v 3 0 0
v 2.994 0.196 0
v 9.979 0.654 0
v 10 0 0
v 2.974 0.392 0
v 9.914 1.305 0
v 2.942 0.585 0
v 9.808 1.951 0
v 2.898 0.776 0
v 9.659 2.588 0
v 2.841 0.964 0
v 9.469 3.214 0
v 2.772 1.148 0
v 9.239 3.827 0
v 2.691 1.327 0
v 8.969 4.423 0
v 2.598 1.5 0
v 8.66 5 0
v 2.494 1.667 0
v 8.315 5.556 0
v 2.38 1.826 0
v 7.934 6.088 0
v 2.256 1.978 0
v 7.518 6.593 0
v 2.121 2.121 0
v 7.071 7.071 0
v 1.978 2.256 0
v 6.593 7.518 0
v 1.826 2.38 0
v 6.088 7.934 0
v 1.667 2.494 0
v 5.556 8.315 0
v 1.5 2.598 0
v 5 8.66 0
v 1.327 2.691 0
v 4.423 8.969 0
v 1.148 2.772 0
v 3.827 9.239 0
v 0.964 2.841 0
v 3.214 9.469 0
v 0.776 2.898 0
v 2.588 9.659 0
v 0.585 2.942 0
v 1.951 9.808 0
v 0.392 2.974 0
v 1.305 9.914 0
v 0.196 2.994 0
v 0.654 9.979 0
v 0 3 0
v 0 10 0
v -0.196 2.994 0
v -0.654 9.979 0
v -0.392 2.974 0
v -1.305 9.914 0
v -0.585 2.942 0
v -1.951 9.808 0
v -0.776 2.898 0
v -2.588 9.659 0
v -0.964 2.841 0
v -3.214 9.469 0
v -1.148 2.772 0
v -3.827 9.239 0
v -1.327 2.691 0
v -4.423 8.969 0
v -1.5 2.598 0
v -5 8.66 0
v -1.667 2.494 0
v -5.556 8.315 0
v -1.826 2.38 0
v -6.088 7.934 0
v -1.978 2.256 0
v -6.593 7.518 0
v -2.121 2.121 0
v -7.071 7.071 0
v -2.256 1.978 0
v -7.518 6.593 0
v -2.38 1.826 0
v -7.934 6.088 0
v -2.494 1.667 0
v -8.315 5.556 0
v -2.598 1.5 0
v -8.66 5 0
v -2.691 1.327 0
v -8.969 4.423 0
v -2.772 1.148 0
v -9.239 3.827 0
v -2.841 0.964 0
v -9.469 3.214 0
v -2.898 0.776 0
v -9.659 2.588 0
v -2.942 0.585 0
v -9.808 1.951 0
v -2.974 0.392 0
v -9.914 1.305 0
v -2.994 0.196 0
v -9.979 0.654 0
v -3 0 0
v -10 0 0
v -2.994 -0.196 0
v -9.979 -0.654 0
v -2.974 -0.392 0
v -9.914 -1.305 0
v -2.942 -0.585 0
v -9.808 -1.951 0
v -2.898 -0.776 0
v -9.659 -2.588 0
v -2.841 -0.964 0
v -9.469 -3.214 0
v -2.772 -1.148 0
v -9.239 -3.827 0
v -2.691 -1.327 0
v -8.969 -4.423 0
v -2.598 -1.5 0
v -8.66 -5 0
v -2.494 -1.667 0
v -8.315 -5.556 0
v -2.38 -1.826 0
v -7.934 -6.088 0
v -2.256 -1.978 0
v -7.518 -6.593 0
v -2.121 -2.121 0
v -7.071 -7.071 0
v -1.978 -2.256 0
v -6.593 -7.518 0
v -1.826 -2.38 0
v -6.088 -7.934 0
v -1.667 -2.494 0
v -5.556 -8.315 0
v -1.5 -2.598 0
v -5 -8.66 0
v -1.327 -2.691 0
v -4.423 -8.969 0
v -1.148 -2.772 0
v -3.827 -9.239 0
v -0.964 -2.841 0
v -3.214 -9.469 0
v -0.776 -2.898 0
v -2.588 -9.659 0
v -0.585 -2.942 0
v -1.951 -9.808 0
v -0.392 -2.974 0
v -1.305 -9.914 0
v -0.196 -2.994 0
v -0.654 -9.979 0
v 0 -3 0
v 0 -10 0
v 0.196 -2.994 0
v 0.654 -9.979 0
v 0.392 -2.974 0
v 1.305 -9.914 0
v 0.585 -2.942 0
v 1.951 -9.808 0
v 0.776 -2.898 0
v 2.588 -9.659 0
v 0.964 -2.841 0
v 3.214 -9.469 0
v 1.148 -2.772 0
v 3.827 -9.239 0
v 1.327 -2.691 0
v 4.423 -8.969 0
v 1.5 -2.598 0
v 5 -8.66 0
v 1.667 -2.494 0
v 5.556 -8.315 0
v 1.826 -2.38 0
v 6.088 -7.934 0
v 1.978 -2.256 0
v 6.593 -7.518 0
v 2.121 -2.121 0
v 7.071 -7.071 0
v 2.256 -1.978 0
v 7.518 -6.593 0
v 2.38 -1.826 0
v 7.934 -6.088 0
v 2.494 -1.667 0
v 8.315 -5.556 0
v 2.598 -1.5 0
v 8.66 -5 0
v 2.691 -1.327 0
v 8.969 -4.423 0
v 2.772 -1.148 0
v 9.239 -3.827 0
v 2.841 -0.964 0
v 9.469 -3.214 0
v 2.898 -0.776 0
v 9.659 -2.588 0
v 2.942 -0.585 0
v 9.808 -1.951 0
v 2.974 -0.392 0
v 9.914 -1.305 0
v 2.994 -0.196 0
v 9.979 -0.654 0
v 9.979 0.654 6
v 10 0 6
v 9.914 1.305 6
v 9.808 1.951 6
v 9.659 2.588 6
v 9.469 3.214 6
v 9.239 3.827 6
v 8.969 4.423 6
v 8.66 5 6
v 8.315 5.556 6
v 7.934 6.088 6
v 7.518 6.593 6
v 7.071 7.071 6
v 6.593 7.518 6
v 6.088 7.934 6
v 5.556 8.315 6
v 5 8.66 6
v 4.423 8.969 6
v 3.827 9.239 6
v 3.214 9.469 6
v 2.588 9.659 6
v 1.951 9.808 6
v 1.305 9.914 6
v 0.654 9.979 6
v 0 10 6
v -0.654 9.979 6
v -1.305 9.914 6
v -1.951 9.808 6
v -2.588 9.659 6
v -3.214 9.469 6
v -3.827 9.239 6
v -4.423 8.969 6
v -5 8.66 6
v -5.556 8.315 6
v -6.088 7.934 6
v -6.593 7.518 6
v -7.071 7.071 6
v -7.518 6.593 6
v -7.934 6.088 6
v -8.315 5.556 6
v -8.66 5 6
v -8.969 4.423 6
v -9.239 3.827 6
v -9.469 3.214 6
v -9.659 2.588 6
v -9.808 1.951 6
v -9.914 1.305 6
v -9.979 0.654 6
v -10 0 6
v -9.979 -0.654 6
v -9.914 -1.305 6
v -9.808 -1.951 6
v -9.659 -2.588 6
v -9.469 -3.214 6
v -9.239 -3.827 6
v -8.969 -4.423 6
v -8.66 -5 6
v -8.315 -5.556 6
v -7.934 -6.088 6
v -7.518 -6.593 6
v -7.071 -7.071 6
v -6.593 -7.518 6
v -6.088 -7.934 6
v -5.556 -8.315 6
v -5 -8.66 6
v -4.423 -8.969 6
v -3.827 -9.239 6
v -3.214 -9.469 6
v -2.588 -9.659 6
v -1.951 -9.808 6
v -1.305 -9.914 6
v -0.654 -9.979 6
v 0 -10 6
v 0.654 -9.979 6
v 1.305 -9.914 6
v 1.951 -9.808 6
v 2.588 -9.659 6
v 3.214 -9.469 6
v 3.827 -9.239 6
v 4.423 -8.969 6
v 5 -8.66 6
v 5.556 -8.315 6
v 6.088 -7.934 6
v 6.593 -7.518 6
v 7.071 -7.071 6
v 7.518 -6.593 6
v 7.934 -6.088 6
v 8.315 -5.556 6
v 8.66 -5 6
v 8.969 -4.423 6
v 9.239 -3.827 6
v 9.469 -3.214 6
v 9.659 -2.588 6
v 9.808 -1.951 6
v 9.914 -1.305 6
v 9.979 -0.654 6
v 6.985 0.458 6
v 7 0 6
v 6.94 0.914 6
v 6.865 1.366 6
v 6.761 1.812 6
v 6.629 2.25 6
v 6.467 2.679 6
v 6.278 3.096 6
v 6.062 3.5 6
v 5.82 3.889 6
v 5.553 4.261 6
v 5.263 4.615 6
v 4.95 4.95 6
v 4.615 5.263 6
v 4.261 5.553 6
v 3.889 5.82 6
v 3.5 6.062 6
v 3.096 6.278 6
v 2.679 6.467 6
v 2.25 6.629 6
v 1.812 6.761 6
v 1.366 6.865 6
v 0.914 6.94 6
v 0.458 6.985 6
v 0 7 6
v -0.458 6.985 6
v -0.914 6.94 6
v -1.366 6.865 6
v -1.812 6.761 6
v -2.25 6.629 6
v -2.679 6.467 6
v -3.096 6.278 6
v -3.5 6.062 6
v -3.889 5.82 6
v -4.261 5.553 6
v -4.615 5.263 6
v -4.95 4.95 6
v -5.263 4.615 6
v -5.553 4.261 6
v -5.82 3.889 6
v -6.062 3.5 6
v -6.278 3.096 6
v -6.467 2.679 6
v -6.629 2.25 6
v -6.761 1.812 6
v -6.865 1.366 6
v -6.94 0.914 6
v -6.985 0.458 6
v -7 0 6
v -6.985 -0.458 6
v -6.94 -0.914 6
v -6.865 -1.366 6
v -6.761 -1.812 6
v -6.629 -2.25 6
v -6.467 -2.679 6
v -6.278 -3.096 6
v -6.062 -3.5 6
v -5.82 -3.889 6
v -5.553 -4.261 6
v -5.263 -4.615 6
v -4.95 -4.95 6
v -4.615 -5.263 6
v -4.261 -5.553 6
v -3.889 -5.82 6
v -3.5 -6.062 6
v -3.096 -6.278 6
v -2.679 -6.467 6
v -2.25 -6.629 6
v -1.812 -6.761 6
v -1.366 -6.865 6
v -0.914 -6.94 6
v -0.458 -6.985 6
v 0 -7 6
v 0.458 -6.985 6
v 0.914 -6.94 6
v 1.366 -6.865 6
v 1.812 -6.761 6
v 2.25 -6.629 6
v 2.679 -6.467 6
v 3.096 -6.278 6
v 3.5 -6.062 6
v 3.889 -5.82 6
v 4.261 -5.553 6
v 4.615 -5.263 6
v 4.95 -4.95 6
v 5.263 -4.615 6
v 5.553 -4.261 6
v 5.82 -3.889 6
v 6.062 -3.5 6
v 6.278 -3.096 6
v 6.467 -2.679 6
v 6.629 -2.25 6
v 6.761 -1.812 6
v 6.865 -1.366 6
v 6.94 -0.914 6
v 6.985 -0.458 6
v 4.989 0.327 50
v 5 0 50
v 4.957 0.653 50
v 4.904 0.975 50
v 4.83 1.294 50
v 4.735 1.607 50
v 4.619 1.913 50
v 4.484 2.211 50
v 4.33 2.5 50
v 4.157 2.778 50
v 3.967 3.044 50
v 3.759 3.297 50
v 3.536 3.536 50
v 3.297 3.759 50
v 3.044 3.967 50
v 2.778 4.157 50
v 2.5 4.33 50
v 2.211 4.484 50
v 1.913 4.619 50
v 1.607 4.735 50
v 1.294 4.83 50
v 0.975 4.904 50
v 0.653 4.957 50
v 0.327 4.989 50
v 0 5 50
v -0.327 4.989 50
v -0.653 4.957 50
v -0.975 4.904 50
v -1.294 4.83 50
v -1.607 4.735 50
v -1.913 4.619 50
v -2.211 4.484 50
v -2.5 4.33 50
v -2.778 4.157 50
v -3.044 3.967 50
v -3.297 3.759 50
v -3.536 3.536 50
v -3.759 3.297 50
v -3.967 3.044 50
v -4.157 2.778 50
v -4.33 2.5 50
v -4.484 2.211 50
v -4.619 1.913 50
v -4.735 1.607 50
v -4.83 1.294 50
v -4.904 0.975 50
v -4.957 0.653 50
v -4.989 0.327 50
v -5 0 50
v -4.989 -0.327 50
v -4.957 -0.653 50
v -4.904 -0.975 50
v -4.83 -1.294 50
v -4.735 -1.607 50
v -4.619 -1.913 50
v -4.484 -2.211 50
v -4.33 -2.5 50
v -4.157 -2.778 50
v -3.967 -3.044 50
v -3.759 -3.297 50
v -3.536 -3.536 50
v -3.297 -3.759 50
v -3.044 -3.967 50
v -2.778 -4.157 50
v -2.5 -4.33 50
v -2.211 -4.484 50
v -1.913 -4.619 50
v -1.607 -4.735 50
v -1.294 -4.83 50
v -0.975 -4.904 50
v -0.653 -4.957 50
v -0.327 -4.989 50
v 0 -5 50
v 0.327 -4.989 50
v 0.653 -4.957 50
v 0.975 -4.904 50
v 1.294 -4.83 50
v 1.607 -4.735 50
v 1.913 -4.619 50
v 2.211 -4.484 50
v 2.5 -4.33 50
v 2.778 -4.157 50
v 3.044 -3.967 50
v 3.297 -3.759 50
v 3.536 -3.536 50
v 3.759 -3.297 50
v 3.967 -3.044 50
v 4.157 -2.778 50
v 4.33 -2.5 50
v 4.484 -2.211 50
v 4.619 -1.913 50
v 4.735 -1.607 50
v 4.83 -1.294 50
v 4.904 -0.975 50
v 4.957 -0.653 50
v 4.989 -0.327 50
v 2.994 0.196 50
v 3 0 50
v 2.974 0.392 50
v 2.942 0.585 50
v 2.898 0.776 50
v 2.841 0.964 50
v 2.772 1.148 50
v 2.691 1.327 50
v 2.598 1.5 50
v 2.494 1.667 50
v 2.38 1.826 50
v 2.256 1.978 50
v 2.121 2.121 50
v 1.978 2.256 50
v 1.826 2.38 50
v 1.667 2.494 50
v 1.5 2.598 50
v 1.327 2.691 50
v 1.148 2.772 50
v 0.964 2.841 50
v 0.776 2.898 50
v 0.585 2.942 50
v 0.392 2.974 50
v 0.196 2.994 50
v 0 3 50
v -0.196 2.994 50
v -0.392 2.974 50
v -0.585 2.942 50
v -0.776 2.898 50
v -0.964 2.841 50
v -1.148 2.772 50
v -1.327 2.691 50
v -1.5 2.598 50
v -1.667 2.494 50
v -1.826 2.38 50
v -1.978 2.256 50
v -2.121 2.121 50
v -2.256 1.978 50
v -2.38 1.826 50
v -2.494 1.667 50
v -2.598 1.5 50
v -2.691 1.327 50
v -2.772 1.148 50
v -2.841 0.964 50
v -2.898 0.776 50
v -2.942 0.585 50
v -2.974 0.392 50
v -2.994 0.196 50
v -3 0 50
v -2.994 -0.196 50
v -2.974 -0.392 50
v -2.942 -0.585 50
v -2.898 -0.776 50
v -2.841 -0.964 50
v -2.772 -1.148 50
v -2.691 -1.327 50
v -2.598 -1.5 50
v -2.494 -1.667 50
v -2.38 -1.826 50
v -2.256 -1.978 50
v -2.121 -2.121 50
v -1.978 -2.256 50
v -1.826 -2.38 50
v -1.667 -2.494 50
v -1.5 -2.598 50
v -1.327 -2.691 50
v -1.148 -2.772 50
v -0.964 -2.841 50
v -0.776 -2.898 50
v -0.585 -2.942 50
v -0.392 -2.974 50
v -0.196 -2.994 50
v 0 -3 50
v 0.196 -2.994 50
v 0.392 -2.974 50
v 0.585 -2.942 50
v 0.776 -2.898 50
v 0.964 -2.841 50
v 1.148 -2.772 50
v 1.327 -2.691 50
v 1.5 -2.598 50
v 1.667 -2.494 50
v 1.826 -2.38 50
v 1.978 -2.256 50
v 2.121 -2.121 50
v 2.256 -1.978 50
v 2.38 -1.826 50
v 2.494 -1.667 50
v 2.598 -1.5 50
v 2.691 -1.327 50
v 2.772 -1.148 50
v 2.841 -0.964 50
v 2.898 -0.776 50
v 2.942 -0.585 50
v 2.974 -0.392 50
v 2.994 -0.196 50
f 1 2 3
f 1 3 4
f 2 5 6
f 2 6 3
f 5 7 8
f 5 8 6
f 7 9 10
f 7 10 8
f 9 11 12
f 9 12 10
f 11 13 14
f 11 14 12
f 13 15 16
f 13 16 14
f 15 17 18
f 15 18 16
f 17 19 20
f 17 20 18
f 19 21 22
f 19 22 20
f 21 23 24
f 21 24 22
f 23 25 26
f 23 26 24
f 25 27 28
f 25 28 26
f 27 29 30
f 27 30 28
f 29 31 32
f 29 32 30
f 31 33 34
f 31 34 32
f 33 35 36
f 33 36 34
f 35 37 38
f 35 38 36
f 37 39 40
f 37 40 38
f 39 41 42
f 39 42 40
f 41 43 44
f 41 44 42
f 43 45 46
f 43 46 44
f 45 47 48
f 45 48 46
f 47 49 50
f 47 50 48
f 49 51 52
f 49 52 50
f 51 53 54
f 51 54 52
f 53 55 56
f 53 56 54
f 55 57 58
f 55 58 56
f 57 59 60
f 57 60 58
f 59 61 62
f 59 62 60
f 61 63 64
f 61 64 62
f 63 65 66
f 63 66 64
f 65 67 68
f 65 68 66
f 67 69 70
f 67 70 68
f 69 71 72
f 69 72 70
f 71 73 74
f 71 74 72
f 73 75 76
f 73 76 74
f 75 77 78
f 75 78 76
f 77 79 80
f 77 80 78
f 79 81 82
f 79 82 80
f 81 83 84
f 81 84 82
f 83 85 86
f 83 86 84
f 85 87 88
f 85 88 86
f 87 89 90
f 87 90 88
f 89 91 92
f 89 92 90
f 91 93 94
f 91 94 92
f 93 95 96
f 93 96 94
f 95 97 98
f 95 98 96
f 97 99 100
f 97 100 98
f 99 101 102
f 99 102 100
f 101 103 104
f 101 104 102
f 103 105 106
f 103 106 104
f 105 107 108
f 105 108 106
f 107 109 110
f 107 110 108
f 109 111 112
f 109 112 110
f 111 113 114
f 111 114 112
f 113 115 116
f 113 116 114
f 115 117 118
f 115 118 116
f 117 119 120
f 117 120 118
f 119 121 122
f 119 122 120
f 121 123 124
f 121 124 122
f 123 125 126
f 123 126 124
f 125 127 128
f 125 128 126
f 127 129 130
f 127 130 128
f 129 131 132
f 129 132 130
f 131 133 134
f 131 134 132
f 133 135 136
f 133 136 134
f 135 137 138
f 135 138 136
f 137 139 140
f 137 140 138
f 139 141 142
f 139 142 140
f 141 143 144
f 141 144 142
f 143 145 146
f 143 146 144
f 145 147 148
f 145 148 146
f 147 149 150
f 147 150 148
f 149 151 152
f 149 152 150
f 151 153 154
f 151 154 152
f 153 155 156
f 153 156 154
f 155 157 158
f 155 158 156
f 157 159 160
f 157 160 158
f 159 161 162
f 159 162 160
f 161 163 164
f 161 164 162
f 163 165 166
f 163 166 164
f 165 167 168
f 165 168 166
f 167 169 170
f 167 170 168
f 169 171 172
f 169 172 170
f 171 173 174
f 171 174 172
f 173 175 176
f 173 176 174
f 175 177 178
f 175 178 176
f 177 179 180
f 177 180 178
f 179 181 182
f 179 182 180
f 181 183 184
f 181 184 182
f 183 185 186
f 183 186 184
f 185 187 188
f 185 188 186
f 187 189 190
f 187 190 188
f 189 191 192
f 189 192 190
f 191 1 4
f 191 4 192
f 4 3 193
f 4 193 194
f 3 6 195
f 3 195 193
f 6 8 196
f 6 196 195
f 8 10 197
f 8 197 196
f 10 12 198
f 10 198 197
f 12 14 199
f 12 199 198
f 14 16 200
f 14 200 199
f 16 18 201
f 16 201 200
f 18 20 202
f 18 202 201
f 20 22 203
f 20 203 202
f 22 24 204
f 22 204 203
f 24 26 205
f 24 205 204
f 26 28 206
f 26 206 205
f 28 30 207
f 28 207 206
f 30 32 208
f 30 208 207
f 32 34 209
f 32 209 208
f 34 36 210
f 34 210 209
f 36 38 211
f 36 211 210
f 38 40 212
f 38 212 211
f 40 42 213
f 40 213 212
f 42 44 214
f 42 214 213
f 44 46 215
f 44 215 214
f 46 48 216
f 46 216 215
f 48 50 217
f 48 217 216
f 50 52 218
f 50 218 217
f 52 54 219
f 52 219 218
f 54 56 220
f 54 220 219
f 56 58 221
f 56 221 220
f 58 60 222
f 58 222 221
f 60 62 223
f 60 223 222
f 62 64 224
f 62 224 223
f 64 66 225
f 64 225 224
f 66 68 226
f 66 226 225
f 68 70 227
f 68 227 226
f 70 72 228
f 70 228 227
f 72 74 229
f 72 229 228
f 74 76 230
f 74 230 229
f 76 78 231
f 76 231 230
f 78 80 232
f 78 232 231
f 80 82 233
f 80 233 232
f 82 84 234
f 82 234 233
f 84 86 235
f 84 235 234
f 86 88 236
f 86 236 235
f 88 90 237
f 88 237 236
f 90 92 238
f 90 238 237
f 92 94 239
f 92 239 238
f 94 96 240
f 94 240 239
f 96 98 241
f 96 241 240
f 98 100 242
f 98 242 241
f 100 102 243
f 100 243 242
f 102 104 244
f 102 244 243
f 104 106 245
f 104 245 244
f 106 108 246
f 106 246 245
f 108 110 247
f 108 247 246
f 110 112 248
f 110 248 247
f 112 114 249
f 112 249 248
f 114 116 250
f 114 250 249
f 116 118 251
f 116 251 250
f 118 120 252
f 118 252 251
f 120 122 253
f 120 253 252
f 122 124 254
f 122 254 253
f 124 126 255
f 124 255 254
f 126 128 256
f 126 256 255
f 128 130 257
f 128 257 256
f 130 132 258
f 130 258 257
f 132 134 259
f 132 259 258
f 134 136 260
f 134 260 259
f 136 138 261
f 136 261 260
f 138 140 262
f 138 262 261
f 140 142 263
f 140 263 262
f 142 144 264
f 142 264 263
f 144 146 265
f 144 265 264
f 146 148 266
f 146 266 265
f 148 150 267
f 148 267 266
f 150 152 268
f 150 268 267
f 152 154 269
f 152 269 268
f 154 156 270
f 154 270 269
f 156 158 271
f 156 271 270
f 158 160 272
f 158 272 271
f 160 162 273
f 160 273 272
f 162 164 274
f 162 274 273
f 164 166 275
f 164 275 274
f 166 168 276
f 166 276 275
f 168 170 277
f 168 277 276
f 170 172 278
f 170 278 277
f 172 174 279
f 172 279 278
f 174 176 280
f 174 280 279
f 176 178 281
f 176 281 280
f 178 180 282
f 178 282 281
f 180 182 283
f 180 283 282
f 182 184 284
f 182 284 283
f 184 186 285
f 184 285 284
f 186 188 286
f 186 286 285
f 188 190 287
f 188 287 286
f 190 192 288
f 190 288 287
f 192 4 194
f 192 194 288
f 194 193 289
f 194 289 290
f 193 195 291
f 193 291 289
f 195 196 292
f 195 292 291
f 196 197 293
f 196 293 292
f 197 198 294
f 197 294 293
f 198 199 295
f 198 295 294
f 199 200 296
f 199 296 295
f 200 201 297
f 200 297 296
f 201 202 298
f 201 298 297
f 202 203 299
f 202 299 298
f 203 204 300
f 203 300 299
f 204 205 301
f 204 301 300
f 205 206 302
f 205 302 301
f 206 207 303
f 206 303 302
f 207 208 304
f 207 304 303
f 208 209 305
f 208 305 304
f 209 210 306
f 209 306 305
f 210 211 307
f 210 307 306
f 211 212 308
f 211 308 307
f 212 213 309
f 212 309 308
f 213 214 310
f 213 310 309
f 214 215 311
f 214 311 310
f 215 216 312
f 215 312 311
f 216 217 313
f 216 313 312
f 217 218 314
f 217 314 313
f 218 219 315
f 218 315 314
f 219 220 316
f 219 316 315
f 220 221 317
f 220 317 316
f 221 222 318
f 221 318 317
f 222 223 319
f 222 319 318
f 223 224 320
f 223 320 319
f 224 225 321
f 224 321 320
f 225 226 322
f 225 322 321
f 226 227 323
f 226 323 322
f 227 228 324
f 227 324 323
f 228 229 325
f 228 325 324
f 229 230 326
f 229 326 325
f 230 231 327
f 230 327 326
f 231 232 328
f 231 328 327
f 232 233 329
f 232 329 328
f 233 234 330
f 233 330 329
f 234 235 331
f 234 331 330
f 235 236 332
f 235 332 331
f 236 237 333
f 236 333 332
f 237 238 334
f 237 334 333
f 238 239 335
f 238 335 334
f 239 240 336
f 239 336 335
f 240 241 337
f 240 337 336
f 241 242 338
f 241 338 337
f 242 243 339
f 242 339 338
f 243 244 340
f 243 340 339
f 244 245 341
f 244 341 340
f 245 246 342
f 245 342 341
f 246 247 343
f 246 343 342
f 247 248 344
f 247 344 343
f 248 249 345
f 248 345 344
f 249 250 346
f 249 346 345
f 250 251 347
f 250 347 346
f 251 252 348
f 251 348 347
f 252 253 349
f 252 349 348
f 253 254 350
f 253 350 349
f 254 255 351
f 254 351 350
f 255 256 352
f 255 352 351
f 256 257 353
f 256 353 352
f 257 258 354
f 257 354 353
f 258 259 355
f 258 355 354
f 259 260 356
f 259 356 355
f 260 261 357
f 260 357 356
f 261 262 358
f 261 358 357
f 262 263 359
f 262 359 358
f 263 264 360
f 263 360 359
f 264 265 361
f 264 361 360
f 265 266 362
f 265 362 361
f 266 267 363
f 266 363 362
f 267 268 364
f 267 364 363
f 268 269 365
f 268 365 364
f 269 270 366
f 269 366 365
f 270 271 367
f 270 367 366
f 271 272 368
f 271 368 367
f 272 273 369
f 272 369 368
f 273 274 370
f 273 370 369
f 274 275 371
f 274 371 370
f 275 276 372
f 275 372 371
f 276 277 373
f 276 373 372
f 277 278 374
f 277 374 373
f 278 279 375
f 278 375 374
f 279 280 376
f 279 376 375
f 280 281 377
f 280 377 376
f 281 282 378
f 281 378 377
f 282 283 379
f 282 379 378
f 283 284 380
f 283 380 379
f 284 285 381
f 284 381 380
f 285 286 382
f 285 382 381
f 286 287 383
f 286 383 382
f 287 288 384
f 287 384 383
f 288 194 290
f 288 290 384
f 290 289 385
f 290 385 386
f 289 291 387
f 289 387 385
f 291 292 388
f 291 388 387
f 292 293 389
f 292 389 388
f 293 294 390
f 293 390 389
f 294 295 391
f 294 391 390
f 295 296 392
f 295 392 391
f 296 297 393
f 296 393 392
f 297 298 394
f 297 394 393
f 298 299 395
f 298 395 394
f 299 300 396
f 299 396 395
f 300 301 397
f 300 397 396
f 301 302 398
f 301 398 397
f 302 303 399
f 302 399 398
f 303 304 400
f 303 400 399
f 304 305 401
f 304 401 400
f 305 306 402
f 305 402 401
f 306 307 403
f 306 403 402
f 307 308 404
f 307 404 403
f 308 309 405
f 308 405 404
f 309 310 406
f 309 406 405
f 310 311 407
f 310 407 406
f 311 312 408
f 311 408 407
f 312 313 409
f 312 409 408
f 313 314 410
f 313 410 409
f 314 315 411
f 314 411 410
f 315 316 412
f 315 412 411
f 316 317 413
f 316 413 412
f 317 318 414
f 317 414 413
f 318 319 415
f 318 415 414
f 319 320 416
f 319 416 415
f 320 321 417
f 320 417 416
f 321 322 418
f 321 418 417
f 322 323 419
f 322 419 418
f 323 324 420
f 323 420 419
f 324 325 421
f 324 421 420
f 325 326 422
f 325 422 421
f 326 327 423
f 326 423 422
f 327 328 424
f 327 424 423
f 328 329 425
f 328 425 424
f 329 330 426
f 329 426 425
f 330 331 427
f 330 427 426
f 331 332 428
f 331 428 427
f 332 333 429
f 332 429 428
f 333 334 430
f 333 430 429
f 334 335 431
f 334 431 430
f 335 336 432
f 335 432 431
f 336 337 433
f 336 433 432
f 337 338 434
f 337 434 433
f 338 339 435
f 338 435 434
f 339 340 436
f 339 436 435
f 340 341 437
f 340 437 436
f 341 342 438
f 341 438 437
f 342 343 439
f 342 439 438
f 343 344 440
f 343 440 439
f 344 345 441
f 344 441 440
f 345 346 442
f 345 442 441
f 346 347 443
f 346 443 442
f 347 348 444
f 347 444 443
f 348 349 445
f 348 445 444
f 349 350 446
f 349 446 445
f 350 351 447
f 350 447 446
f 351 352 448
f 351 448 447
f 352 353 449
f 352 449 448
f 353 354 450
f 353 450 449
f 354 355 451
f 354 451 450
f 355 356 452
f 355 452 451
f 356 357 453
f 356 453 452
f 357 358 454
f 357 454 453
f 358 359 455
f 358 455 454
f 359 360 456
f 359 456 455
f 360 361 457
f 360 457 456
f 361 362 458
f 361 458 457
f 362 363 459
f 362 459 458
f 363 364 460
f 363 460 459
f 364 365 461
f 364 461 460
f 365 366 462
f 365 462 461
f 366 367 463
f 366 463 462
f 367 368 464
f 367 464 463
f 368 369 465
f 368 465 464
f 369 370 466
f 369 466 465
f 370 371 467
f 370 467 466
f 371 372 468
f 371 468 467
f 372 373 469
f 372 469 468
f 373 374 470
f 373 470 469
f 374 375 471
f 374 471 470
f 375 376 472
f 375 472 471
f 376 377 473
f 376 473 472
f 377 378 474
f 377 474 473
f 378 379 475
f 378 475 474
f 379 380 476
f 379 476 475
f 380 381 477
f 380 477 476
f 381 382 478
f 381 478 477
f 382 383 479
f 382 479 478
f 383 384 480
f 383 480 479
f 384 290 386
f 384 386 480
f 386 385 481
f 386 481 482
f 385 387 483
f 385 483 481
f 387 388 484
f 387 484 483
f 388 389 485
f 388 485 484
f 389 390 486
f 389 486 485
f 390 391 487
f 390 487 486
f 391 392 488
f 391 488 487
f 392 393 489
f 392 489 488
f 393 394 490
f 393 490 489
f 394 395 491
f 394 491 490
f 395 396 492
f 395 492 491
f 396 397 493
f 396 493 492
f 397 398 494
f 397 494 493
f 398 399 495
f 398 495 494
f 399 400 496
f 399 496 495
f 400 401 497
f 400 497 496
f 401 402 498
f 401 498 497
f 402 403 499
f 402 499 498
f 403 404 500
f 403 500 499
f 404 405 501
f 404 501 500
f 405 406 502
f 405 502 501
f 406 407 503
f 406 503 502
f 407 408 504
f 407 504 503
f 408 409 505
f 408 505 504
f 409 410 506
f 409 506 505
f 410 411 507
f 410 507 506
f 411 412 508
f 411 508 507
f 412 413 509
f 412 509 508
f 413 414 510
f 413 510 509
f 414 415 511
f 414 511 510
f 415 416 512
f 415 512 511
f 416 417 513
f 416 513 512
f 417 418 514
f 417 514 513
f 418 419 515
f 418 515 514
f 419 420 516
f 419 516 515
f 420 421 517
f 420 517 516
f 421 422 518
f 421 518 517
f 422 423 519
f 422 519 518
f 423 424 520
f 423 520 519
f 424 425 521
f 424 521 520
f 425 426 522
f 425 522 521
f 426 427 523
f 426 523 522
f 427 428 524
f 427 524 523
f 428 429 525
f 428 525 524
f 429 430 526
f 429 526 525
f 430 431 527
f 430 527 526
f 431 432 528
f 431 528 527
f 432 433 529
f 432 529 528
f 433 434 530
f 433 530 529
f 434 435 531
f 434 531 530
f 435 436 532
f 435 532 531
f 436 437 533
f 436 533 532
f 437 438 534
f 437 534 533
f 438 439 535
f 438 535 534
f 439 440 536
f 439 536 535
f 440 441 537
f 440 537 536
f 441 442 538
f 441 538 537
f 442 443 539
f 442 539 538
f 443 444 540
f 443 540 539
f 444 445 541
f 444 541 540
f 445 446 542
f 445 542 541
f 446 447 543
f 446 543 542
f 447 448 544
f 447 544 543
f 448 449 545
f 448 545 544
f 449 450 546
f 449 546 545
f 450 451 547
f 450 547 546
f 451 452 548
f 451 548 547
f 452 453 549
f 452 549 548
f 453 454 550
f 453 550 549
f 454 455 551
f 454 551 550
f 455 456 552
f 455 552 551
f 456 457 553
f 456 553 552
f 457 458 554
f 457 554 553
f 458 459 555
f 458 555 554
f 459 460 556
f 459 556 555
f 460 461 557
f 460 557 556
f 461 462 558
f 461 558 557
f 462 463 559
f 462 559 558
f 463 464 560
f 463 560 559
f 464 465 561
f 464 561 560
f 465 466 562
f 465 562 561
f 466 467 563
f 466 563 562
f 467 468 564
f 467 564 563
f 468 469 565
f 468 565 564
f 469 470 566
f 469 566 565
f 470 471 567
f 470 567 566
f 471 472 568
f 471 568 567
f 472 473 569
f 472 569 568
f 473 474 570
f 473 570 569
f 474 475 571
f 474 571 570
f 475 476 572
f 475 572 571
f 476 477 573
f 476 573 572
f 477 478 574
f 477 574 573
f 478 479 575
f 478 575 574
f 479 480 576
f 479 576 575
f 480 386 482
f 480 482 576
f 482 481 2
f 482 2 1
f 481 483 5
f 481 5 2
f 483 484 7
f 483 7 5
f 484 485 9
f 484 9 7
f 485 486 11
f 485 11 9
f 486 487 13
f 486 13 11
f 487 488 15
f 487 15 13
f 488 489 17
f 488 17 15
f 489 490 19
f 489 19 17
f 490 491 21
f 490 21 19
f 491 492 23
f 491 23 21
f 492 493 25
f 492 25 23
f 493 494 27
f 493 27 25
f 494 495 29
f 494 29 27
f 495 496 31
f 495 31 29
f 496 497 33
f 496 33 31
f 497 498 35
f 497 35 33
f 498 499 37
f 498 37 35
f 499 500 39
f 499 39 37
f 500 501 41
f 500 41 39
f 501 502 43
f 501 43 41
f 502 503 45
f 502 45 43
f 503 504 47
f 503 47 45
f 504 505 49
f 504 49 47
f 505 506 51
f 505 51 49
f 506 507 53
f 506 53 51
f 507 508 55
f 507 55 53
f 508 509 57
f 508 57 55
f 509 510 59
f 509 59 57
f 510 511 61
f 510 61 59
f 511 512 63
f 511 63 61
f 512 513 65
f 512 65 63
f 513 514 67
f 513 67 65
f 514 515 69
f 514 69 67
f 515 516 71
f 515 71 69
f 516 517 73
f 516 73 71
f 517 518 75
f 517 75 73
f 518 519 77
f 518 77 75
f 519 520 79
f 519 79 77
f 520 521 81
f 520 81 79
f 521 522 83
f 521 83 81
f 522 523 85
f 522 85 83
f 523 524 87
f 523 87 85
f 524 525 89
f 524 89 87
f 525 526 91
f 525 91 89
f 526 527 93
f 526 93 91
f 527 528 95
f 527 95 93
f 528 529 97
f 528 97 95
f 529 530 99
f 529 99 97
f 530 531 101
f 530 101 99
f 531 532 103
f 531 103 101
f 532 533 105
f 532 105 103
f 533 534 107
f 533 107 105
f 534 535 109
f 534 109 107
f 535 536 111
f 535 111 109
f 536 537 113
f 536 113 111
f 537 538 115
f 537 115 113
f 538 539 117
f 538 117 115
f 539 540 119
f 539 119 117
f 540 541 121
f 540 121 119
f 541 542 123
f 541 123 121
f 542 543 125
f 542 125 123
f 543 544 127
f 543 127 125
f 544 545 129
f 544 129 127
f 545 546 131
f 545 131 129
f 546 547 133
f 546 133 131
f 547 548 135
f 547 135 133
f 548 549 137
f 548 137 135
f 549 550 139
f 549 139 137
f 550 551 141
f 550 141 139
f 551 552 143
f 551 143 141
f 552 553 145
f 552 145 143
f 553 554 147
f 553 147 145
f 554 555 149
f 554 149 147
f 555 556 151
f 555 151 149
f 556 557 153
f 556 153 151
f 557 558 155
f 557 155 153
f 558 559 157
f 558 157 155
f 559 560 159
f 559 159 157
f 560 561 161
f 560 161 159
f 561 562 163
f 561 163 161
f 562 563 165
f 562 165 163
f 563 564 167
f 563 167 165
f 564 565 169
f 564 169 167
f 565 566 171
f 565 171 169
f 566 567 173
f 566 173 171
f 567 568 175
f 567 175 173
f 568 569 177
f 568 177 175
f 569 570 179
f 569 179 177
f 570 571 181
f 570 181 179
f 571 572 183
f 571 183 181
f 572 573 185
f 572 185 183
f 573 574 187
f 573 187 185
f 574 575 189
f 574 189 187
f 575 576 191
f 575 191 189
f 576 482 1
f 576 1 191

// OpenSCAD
// Original MechIntel educational model. CC0-1.0. Units: mm.
// Not a standardized or load-rated component.
$fn=96;
// Section points: [radius, height], mm. Edit to change the profile.
section=[[3, 0], [10, 0], [10, 6], [7, 6], [5, 50], [3, 50]];
rotate_extrude($fn=96) polygon(points=section);
